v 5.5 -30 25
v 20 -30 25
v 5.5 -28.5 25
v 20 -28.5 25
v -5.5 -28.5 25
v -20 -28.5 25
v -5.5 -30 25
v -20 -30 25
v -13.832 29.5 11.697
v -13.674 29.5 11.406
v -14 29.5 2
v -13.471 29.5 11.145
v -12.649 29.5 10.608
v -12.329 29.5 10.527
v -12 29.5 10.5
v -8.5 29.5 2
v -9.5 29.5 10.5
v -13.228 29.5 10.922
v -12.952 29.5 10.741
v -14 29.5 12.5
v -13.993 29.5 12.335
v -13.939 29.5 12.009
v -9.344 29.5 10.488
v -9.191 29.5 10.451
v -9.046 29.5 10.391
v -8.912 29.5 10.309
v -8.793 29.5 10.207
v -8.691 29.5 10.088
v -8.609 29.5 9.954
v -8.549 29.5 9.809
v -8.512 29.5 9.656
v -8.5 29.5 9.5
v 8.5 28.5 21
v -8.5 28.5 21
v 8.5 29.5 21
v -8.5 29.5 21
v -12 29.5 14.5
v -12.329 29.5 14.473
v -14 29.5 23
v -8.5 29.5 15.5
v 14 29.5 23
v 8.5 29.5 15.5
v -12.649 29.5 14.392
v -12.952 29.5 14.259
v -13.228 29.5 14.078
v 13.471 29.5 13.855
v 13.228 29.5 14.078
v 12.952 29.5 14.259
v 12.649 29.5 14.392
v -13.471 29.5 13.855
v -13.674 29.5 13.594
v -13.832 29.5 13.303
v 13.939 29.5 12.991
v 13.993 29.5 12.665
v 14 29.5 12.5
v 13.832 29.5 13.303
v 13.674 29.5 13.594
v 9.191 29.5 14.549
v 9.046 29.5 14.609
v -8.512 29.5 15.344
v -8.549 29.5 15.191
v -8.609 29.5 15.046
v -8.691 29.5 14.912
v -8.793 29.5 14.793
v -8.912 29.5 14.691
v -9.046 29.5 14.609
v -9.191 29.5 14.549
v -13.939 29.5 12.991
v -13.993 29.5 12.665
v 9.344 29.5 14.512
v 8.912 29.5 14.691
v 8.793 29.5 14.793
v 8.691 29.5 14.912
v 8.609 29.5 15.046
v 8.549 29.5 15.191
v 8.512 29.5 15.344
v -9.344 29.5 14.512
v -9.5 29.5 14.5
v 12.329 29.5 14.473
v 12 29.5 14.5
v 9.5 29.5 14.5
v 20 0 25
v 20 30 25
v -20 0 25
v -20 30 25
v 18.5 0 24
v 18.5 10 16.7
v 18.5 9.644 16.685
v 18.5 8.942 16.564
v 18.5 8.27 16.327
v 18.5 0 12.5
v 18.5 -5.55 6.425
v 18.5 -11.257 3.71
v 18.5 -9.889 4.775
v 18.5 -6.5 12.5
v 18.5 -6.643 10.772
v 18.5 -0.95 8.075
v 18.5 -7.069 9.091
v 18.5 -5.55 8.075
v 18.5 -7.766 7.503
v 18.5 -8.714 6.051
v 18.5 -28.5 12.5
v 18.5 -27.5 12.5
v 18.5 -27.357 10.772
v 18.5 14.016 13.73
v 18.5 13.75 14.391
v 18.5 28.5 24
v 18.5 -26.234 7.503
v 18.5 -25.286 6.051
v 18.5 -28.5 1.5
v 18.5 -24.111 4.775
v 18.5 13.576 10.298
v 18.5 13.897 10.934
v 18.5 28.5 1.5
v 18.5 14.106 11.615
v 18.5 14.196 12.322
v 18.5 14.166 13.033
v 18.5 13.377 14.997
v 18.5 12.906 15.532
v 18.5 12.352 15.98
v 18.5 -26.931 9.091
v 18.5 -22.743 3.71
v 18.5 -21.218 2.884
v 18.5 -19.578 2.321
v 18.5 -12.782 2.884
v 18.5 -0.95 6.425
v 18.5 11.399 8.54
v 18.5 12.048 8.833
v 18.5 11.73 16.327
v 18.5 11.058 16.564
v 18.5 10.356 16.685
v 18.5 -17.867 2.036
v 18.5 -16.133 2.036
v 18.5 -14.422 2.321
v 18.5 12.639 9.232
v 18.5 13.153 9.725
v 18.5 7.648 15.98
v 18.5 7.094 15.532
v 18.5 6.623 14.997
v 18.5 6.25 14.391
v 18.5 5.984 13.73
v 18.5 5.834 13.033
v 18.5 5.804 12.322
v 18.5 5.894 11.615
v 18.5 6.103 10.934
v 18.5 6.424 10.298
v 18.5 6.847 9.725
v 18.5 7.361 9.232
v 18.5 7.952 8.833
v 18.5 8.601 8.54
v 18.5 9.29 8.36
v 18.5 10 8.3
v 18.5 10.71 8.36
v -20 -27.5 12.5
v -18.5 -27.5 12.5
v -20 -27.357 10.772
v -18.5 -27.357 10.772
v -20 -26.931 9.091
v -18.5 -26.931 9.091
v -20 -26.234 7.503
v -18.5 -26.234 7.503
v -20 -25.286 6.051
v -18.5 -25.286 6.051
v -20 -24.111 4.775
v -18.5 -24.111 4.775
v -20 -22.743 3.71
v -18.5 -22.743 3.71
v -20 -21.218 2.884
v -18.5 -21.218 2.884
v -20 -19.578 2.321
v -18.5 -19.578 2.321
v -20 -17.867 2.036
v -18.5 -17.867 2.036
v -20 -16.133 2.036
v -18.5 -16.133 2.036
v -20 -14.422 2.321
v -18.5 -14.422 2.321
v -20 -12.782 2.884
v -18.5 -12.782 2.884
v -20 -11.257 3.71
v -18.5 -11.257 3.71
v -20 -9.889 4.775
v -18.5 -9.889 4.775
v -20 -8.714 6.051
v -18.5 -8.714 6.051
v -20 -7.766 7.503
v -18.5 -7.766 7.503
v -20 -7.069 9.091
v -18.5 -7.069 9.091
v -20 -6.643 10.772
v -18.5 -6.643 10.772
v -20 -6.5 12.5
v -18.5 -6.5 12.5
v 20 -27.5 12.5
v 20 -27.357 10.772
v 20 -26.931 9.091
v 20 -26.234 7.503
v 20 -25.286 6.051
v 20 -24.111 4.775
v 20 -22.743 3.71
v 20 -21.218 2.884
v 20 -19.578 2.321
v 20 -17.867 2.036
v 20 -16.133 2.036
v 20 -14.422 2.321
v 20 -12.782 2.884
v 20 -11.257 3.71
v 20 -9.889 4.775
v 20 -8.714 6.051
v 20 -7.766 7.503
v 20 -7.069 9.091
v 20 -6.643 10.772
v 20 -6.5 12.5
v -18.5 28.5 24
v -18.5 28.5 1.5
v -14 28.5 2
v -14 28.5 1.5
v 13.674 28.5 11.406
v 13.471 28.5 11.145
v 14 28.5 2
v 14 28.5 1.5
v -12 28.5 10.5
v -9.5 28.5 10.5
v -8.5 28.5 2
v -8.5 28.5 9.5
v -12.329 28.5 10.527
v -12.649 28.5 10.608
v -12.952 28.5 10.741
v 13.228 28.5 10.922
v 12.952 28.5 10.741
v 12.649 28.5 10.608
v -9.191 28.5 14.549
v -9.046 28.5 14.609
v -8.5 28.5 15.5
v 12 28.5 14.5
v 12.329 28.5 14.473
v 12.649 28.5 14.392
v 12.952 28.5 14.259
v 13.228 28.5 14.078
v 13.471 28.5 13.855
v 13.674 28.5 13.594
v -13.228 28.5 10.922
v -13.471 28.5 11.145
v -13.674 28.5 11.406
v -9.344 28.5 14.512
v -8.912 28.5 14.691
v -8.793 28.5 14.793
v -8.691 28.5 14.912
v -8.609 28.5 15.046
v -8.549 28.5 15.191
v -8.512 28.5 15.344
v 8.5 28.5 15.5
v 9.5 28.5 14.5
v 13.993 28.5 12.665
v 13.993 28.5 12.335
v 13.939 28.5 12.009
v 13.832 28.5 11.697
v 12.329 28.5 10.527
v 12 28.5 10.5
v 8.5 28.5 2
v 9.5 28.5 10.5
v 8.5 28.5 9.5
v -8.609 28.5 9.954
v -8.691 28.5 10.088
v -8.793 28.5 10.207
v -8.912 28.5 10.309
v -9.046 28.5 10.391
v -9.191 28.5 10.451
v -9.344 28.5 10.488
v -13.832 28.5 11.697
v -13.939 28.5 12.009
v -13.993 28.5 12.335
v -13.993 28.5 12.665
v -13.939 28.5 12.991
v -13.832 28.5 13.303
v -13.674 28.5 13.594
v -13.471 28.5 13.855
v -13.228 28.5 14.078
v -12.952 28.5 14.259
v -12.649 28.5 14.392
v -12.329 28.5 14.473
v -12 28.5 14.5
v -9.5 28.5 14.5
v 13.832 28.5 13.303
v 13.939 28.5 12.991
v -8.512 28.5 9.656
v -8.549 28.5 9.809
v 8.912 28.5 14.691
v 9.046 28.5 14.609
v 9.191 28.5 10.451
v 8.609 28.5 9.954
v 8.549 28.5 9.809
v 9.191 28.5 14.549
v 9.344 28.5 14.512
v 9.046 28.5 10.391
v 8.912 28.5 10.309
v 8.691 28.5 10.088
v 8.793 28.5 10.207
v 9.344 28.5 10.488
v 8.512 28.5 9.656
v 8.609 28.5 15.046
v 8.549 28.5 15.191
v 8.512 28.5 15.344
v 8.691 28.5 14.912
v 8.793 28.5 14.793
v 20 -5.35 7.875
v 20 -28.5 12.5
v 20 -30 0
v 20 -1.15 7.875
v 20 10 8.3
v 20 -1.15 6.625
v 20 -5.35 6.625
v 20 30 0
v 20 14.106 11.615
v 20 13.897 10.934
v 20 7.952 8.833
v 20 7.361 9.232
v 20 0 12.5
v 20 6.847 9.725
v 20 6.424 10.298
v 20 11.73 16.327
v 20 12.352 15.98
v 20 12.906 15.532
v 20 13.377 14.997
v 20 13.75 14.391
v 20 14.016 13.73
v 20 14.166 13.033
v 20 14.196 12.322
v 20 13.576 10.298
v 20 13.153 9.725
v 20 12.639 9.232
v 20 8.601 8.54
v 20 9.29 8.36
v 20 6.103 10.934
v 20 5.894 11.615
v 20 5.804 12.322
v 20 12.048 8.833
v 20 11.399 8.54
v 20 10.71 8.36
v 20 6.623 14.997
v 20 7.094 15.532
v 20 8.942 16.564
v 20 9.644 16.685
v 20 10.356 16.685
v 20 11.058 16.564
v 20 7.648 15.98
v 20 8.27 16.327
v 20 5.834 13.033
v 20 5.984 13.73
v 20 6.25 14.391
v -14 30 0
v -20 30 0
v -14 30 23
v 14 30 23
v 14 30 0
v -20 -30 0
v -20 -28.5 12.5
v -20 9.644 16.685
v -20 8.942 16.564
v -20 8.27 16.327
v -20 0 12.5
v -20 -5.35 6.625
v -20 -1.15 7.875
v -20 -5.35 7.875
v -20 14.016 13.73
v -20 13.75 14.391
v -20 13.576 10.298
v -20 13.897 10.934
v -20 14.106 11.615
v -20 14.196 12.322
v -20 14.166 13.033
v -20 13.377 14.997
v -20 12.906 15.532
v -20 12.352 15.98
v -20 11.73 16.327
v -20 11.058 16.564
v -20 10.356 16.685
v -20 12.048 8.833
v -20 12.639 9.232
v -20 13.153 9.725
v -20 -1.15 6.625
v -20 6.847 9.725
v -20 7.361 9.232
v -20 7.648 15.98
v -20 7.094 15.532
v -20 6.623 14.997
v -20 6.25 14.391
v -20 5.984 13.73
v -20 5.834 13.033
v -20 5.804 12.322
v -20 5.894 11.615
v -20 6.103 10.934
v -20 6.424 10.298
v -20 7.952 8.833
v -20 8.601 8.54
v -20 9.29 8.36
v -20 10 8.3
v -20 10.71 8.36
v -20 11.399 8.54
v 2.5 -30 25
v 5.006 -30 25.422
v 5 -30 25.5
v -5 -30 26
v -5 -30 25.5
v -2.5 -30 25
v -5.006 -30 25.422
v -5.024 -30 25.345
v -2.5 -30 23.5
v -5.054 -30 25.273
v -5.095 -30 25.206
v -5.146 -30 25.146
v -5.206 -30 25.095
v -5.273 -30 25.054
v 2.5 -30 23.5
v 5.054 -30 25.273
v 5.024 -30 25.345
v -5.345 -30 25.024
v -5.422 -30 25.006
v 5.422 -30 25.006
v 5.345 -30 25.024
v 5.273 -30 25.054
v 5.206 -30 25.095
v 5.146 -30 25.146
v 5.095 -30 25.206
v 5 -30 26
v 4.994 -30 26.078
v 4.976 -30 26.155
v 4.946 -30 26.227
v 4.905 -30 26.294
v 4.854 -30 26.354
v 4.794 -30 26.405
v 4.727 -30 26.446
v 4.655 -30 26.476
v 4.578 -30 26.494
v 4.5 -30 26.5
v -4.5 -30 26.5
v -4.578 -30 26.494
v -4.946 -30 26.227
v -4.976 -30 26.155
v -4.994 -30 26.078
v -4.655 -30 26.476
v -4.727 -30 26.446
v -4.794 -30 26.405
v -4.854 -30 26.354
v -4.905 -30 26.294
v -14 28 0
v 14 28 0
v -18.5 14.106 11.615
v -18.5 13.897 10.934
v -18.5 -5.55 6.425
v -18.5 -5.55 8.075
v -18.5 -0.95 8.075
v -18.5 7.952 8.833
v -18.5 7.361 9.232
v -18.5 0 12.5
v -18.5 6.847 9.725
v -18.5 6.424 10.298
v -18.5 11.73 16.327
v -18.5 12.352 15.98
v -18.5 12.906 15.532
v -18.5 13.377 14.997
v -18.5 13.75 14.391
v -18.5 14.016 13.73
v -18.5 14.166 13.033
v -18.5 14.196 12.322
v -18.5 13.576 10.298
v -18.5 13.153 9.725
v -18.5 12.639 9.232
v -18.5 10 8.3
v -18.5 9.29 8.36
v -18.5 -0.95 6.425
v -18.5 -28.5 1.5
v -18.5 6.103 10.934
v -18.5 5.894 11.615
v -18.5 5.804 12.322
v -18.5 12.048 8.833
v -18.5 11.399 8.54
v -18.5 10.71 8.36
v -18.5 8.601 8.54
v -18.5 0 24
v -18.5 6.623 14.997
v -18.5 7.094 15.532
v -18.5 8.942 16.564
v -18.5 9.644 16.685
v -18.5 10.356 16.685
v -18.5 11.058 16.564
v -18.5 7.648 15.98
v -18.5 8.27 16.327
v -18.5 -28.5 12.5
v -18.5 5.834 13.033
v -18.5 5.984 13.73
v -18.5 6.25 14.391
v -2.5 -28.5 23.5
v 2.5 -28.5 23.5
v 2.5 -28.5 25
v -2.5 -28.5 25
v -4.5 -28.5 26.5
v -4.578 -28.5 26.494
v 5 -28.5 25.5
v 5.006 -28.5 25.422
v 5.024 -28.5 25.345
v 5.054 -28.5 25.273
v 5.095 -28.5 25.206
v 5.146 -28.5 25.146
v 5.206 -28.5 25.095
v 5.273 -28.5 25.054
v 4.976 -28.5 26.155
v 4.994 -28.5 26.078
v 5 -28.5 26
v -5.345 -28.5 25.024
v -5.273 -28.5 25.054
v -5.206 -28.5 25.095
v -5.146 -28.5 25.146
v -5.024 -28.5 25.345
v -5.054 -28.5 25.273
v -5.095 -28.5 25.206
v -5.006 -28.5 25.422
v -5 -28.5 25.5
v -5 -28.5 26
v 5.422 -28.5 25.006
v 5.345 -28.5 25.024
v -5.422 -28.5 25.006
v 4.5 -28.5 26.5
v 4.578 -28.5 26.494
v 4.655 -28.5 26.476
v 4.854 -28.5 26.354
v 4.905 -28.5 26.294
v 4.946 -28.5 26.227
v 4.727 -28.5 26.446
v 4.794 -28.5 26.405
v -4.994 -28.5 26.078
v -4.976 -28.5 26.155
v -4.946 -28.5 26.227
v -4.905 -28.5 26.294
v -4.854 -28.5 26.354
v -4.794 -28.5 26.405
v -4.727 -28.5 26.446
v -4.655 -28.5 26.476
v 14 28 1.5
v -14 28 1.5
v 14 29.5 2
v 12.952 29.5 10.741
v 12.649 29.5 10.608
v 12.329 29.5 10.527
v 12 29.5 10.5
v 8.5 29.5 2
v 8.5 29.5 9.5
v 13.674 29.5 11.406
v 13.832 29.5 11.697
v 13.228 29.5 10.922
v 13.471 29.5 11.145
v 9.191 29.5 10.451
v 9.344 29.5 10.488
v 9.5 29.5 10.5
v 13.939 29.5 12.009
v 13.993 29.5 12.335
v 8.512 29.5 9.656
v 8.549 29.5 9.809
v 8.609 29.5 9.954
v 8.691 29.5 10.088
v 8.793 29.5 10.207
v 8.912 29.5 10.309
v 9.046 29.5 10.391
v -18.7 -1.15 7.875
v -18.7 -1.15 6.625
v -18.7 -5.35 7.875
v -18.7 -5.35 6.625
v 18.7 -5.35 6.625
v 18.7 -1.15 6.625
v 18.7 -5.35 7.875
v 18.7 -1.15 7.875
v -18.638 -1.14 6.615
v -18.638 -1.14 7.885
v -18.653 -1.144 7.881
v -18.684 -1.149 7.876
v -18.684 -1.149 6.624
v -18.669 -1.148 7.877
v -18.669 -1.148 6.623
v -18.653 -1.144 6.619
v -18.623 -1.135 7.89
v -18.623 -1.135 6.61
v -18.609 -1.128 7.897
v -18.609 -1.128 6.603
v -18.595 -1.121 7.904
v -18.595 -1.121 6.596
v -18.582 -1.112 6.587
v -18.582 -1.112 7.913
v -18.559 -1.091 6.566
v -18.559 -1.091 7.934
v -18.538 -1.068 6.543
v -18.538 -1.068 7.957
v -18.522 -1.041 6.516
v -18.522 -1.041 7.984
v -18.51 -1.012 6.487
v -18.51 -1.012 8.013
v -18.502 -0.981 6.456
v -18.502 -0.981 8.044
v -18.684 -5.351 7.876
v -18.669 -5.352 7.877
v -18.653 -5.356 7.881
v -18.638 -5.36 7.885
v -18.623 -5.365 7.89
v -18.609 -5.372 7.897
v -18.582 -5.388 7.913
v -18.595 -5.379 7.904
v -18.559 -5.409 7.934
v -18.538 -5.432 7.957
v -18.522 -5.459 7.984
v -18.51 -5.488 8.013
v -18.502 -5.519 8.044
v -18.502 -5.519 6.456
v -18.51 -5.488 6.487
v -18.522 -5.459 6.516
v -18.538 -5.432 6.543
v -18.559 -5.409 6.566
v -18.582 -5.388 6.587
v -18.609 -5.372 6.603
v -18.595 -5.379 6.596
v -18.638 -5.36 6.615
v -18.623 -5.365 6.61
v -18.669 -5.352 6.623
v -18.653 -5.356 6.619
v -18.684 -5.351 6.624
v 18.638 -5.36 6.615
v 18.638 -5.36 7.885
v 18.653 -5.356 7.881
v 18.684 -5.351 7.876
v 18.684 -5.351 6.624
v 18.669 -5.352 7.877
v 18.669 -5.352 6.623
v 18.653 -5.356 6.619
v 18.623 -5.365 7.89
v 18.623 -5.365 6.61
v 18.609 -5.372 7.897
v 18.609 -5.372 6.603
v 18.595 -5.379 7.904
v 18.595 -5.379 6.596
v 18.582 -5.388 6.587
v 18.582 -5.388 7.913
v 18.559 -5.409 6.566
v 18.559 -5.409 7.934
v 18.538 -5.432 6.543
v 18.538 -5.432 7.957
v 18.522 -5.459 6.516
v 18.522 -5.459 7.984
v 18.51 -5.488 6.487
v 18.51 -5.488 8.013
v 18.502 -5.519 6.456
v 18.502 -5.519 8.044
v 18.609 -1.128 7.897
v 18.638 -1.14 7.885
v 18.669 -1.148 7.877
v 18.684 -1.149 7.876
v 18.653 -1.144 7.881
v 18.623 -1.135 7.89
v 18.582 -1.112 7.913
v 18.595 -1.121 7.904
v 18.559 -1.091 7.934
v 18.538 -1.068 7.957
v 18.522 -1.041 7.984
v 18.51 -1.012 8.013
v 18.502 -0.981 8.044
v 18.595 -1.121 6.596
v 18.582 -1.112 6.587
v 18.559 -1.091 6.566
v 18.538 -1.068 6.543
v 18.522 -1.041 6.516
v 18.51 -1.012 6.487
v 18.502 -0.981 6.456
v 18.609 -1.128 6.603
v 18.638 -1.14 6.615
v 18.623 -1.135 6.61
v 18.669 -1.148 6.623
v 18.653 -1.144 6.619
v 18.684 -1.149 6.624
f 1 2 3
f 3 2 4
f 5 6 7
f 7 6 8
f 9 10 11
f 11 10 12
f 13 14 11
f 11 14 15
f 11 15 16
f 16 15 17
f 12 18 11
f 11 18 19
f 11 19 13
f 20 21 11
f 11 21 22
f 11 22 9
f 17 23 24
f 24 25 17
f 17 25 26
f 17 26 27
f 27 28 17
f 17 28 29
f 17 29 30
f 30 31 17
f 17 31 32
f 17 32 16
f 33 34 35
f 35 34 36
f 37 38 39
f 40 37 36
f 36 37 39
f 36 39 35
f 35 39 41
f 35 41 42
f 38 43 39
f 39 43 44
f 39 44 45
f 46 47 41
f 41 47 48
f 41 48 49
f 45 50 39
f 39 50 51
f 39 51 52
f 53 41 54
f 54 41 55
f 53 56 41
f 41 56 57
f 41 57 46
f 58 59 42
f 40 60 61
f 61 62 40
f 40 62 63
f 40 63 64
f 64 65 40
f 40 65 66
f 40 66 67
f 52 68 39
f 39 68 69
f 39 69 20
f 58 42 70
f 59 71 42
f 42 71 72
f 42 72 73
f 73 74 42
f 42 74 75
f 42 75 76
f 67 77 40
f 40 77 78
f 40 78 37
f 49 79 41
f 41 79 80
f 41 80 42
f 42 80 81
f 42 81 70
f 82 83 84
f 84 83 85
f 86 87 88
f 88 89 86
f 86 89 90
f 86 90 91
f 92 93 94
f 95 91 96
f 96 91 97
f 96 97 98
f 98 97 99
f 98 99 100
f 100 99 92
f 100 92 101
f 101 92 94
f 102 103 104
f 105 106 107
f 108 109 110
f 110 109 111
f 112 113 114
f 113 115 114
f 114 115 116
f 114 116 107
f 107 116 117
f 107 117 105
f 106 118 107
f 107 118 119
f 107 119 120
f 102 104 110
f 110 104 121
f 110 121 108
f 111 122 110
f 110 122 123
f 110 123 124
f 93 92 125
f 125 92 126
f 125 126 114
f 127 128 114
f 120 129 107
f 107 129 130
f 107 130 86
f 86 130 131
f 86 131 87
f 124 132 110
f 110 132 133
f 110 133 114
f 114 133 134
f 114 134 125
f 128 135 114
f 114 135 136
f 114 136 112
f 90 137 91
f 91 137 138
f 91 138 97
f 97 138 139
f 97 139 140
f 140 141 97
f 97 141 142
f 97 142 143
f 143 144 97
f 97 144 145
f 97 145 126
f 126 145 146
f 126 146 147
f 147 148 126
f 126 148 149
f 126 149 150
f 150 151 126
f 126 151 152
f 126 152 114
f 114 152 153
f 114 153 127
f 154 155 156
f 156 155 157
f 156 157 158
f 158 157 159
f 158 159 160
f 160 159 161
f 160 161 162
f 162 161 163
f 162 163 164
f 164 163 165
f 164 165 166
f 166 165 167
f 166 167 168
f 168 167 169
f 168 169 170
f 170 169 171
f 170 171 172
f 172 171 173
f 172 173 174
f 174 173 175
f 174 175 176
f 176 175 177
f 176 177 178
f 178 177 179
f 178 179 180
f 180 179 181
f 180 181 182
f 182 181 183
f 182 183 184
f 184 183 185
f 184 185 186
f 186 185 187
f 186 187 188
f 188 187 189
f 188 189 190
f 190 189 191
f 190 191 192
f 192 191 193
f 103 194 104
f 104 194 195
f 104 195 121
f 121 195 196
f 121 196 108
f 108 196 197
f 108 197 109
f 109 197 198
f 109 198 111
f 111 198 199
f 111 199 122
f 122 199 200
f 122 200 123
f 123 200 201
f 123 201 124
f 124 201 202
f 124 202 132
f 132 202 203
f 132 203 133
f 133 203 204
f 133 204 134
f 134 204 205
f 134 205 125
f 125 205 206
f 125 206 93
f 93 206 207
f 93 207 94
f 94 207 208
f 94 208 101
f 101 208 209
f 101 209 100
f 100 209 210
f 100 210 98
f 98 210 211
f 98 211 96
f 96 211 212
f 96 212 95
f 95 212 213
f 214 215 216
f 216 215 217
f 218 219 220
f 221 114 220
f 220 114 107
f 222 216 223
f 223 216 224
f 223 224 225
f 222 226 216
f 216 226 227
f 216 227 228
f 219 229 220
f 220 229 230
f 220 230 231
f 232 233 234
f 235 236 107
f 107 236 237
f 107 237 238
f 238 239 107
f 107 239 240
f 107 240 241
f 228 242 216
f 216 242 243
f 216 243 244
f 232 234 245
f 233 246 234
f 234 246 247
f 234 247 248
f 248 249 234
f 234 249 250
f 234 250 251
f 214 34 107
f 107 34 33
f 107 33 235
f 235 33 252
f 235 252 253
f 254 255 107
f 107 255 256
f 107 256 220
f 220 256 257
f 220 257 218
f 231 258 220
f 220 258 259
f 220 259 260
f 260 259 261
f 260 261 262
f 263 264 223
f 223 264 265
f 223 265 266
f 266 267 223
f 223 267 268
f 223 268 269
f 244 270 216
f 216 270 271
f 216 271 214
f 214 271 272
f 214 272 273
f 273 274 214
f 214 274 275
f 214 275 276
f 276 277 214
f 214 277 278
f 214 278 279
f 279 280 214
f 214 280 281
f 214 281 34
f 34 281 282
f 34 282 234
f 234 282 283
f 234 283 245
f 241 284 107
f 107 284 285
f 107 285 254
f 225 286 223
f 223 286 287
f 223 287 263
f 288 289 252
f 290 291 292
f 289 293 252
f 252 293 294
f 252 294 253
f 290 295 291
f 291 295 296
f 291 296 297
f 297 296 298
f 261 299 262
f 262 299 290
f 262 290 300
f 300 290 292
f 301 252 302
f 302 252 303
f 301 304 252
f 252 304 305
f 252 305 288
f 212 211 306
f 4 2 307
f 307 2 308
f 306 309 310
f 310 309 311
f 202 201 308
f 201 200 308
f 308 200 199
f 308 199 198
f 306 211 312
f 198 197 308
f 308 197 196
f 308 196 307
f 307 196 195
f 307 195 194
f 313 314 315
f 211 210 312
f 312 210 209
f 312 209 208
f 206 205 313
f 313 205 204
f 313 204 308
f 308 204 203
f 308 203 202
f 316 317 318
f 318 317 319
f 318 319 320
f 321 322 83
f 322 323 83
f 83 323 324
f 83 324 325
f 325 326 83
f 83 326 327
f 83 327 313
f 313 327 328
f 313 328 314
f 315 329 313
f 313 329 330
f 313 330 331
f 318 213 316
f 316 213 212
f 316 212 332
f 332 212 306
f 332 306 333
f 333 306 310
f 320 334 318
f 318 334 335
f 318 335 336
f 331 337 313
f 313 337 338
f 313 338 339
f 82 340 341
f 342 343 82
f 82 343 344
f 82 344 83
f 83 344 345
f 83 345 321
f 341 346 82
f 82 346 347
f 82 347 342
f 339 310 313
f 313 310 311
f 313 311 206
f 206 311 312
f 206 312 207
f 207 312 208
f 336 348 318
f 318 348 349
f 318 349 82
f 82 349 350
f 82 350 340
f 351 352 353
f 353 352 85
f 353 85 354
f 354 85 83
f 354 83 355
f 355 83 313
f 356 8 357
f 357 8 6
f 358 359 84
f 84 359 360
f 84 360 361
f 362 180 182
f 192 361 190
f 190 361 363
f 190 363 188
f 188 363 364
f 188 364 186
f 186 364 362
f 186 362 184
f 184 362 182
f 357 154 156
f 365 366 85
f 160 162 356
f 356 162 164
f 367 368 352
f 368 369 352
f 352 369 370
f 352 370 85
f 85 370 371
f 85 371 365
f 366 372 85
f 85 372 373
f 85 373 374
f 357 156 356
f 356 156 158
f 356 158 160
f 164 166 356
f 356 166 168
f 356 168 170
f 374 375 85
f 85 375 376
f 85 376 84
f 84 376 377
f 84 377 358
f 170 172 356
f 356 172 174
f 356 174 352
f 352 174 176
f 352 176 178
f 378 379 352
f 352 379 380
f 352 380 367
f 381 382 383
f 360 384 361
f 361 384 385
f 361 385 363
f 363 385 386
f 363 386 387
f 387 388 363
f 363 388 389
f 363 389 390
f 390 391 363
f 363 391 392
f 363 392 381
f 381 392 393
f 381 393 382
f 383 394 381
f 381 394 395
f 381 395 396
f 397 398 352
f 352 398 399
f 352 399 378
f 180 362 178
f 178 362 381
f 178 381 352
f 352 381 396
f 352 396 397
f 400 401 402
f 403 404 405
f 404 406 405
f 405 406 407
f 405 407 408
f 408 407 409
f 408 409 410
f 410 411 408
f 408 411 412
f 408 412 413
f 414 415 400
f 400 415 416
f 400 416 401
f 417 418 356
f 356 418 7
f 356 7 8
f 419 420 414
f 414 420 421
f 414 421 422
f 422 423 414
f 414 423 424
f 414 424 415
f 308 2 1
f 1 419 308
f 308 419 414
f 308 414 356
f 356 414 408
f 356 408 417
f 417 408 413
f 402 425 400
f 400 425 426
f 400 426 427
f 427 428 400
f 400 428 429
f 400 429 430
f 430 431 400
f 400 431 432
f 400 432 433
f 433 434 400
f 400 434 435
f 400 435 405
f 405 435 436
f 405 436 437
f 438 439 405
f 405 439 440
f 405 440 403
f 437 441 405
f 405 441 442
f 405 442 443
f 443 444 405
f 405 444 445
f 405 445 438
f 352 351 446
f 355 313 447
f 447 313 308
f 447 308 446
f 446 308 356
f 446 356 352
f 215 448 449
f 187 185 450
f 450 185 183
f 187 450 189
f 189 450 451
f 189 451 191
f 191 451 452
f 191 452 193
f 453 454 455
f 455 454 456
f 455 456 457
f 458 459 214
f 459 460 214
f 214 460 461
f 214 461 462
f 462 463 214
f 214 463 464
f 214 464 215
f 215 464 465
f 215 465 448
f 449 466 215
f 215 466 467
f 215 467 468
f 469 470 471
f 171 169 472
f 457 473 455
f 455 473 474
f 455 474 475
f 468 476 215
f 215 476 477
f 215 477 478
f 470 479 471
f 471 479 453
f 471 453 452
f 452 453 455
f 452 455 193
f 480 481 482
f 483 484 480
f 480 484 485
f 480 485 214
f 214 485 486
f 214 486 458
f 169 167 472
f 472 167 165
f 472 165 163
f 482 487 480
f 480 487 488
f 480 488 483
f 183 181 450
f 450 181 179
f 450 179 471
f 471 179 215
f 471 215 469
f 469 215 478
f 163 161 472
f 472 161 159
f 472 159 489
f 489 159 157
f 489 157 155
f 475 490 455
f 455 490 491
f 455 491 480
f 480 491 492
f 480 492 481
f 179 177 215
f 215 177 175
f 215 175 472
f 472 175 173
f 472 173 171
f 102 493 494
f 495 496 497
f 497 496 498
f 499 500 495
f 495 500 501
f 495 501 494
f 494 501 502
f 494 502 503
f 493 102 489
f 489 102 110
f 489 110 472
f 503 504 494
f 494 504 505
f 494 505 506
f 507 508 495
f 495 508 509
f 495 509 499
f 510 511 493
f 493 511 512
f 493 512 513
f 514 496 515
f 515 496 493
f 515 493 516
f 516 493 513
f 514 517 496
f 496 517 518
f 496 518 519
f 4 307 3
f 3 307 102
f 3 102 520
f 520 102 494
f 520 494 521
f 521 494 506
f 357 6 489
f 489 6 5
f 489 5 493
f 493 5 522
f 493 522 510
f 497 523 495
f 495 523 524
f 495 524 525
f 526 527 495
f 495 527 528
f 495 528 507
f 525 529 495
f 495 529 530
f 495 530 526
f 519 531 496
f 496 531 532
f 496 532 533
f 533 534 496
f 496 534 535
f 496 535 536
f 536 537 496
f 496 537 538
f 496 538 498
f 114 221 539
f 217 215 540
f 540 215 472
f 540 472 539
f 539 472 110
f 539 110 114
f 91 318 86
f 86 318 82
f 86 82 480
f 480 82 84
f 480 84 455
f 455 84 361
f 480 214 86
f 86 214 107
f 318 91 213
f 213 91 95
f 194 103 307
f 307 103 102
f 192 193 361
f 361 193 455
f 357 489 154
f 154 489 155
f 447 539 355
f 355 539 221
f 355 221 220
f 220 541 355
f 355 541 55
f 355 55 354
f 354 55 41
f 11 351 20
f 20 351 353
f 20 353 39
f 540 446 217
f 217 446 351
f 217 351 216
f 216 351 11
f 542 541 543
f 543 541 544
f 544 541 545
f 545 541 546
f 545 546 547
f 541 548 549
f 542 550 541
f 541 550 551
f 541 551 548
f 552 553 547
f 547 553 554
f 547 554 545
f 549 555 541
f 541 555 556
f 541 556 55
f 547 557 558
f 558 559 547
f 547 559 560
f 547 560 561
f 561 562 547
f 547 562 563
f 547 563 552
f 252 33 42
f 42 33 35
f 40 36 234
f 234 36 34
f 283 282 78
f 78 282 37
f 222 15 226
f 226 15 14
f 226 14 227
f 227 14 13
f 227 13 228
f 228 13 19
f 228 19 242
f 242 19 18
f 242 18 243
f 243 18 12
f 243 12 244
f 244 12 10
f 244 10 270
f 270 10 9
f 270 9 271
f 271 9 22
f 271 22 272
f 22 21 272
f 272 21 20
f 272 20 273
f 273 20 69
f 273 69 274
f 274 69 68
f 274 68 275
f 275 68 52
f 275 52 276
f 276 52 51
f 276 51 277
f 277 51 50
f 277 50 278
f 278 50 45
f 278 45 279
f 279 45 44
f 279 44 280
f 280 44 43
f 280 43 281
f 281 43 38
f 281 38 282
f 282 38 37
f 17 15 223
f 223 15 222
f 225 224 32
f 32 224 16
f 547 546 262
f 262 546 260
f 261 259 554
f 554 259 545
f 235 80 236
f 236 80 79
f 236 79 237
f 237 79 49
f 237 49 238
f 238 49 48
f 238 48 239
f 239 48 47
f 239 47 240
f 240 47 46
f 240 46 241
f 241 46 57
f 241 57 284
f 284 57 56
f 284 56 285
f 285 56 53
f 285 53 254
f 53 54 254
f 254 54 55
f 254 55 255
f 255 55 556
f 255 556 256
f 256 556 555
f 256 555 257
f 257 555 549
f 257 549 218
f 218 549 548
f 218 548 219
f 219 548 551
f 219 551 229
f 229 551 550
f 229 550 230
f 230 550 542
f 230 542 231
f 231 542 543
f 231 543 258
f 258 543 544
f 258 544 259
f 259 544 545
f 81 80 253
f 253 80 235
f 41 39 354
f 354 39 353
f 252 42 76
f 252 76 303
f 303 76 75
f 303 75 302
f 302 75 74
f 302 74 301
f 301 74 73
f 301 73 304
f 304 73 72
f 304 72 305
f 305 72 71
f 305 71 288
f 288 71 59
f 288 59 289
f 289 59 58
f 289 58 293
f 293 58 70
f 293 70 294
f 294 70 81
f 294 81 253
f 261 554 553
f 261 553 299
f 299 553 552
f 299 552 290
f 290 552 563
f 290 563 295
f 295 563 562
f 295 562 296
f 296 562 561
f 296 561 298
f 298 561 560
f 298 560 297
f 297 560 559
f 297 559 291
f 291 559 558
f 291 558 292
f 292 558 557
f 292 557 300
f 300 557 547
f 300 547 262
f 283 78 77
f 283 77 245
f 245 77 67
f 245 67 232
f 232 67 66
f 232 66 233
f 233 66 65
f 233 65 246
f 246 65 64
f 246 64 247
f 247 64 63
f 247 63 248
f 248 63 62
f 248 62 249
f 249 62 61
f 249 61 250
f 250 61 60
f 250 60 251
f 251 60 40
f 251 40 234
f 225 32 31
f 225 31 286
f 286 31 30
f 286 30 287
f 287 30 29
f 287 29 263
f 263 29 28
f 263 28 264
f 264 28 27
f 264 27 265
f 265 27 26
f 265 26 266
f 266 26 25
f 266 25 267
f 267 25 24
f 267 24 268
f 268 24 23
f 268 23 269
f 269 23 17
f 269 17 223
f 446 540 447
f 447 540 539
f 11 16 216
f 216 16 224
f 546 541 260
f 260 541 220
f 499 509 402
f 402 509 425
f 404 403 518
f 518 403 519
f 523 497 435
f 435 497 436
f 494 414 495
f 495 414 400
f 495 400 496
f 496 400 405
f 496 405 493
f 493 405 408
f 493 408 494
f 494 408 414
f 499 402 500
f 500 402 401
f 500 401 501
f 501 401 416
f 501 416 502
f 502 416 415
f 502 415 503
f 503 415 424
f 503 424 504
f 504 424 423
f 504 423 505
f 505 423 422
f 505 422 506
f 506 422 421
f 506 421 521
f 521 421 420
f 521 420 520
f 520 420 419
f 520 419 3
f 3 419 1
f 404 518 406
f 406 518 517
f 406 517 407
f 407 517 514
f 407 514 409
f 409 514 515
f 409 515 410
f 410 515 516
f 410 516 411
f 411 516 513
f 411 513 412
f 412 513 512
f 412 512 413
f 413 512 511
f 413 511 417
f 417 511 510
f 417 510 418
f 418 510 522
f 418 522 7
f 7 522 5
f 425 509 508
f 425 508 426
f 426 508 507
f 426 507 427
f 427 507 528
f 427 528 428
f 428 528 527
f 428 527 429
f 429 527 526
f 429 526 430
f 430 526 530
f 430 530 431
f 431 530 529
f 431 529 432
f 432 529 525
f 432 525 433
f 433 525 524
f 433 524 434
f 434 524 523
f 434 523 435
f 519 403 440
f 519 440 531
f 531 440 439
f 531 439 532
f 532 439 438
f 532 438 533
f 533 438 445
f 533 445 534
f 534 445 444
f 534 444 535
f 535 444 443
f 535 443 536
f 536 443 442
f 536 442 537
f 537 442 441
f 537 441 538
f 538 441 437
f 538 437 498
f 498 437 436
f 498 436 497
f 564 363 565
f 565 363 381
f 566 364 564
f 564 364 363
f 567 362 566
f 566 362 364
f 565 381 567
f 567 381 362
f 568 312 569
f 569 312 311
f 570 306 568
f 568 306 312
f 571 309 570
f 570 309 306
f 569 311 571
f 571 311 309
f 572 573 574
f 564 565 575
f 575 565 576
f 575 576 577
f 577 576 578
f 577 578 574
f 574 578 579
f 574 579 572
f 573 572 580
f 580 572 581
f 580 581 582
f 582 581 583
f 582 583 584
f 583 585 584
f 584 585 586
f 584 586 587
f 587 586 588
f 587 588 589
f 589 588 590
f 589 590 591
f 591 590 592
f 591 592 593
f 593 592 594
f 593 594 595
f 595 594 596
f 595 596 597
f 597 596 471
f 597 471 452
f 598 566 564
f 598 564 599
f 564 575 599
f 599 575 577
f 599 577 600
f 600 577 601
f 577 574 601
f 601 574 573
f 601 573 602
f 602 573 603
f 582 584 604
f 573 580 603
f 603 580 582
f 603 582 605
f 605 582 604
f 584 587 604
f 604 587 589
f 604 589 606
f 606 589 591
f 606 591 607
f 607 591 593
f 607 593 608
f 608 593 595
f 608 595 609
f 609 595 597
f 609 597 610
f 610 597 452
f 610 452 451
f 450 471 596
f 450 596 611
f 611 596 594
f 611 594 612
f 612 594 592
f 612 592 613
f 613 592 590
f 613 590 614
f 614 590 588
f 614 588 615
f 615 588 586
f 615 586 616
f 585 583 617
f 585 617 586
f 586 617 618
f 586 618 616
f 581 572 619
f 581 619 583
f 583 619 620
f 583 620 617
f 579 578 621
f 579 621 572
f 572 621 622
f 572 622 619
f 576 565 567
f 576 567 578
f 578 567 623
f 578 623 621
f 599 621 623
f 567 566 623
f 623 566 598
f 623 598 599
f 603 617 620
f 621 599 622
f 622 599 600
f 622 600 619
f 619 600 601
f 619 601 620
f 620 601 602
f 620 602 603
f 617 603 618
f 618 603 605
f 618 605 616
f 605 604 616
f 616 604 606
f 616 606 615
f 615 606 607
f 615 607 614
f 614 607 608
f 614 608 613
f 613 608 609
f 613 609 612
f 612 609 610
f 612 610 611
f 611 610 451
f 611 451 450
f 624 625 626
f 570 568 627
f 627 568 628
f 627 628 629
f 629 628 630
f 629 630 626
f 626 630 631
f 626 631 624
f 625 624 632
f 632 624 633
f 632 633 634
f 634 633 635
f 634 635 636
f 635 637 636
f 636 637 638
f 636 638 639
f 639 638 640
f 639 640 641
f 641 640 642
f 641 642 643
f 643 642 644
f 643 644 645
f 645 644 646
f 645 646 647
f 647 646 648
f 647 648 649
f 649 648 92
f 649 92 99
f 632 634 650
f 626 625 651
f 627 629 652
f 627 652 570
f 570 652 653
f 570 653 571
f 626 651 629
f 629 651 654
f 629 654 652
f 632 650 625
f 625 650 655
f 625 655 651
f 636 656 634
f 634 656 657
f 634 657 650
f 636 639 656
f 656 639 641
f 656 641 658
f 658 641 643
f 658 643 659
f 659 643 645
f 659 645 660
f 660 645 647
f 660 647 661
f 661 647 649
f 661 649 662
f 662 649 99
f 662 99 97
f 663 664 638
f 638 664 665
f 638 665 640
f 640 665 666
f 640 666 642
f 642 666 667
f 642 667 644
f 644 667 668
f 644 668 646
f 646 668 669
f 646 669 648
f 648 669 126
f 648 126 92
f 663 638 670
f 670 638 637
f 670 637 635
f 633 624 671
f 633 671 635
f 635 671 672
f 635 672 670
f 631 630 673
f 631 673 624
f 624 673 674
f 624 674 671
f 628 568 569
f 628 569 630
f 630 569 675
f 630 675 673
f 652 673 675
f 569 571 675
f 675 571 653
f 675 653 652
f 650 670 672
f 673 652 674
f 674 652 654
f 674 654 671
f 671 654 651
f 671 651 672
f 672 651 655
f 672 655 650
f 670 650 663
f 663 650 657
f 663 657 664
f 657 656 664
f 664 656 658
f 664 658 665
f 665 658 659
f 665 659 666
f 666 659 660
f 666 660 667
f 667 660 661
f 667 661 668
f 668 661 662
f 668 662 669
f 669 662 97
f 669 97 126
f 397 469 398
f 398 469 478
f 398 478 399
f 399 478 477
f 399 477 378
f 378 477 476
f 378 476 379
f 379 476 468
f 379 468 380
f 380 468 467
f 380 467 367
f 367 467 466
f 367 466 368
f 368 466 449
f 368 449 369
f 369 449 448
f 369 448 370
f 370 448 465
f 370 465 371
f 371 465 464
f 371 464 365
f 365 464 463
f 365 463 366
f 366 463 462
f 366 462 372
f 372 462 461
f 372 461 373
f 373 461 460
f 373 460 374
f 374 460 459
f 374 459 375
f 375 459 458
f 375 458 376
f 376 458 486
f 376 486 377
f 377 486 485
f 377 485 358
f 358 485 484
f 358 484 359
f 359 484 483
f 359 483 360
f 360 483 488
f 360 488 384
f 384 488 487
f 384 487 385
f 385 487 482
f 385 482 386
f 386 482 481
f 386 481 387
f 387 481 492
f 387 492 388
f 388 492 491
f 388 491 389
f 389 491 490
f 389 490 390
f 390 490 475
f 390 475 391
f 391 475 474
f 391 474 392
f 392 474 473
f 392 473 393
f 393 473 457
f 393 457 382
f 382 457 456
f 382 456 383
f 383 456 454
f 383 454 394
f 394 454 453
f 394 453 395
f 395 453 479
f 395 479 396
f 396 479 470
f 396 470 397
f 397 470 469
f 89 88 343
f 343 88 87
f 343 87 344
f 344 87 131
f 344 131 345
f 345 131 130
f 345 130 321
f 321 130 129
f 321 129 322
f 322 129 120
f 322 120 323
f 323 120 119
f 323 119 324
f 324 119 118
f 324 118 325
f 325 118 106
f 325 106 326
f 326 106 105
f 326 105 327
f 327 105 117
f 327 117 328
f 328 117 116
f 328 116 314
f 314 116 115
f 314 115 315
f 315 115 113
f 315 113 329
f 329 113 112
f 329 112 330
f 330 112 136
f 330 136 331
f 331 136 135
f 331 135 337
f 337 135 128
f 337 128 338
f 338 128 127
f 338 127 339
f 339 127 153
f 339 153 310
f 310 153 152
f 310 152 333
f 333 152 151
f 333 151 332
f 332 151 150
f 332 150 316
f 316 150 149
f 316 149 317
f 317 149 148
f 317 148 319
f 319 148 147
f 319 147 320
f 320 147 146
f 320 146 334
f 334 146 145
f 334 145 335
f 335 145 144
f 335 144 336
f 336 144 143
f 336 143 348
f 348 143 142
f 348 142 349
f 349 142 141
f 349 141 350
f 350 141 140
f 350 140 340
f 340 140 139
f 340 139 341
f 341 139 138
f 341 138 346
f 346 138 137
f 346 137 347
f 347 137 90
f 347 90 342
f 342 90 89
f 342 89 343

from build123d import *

# Parameters (mm, degrees)
SKETCH_1_W           = 40
SKETCH_1_H           = 60
EXTRUDE_1_DEPTH      = 25
SHELL_1_T            = -1.5
SKETCH_2_R           = 10.5
CUT_EXTRUDE_1_DEPTH  = 75
SKETCH_3_W           = 40
SKETCH_3_H           = 30
EXTRUDE_2_DEPTH      = 1
SKETCH_4_W           = 40
SKETCH_4_H           = 28.5
CUT_EXTRUDE_2_DEPTH  = 12.5
SKETCH_5_R           = 4.2
CUT_EXTRUDE_3_DEPTH  = 1.5
SKETCH_6_W           = 28
SKETCH_6_H           = 26
CUT_EXTRUDE_4_DEPTH  = 0.5
CUT_EXTRUDE_7_DEPTH  = 3.5
SKETCH_9_W           = 28
SKETCH_9_H           = 2
CUT_EXTRUDE_8_DEPTH  = 0.5
FILLET_1_R           = 1
CUT_EXTRUDE_9_DEPTH  = 1.5
SKETCH_18_W          = 10
SKETCH_18_H          = 1.5
EXTRUDE_6_DEPTH      = 1.5
SKETCH_22_W          = 5
SKETCH_22_H          = 1.5
CUT_EXTRUDE_13_DEPTH = 2
FILLET_4_R           = 0.5
SKETCH_26_W          = 1.25
SKETCH_26_H          = 4.2
CUT_EXTRUDE_15_DEPTH = 41
FILLET_5_R           = 0.2
SKETCH_17_R          = 4.2
CUT_EXTRUDE_16_DEPTH = 41
EXTRUDE_START        = 1.5
EXTRUDE_9_DEPTH      = 1.5


with BuildPart() as part:
    # 草图1 → 凸台-拉伸1 (new body)
    with BuildSketch(Plane.XY):
        Rectangle(SKETCH_1_W, SKETCH_1_H)
    extrude(amount=EXTRUDE_1_DEPTH)

    # 抽壳1
    shell_1_openings = [part.faces().sort_by_distance(p)[0] for p in [
        (0, 0, 25),
    ]]
    offset(amount=SHELL_1_T, openings=shell_1_openings, kind=Kind.INTERSECTION)

    # 草图2 → 切除-拉伸1 (cut)
    with BuildSketch(Plane(origin=(20, 0, 0), x_dir=(0, 0, -1), z_dir=(1, 0, 0))):
        with Locations((-12.5, -17)):
            Circle(SKETCH_2_R)
    extrude(amount=-CUT_EXTRUDE_1_DEPTH, mode=Mode.SUBTRACT)

    # 草图3 → 凸台-拉伸2 (add)
    with BuildSketch(Plane.XY.offset(25)):
        with Locations((0, 15)):
            Rectangle(SKETCH_3_W, SKETCH_3_H)
    extrude(amount=-EXTRUDE_2_DEPTH)

    # 草图4 → 切除-拉伸2 (cut)
    with BuildSketch(Plane.XY.offset(25)):
        with Locations((0, -14.25)):
            Rectangle(SKETCH_4_W, SKETCH_4_H)
    extrude(amount=-CUT_EXTRUDE_2_DEPTH, mode=Mode.SUBTRACT)

    # 草图5 → 切除-拉伸3 (cut)
    with BuildSketch(Plane(origin=(0, 30, 0), x_dir=(1, 0, 0), z_dir=(0, 1, 0))):
        with Locations((-20, -12.5)):
            Circle(SKETCH_5_R)
        with Locations((20, -12.5)):
            Circle(SKETCH_5_R)
    extrude(amount=-CUT_EXTRUDE_3_DEPTH, mode=Mode.SUBTRACT)

    # 草图6 → 切除-拉伸4 (cut)
    with BuildSketch(Plane(origin=(0, 30, 0), x_dir=(1, 0, 0), z_dir=(0, 1, 0))):
        with Locations((0, -8)):
            Rectangle(SKETCH_6_W, SKETCH_6_H)
    extrude(amount=-CUT_EXTRUDE_4_DEPTH, mode=Mode.SUBTRACT)

    # 草图8 → 切除-拉伸7 (cut)
    with BuildSketch(Plane(origin=(0, 29.5, 0), x_dir=(1, 0, 0), z_dir=(0, 1, 0))):
        with BuildLine():
            Line((-8.5, -4), (8.5, -4))
            Line((8.5, -4), (8.5, -10.5))
            Line((8.5, -10.5), (12, -10.5))
            ThreePointArc((12, -10.5), (14, -12.5), (12, -14.5))
            Line((12, -14.5), (8.5, -14.5))
            Line((8.5, -14.5), (8.5, -21))
            Line((8.5, -21), (-8.5, -21))
            Line((-8.5, -21), (-8.5, -14.5))
            Line((-8.5, -14.5), (-12, -14.5))
            ThreePointArc((-12, -14.5), (-14, -12.5), (-12, -10.5))
            Line((-12, -10.5), (-8.5, -10.5))
            Line((-8.5, -10.5), (-8.5, -4))
        make_face()
    extrude(amount=-CUT_EXTRUDE_7_DEPTH, mode=Mode.SUBTRACT)

    # 草图9 → 切除-拉伸8 (cut)
    with BuildSketch(Plane(origin=(0, 30, 0), x_dir=(1, 0, 0), z_dir=(0, 1, 0))):
        with Locations((0, -22)):
            Rectangle(SKETCH_9_W, SKETCH_9_H)
    extrude(amount=-CUT_EXTRUDE_8_DEPTH, mode=Mode.SUBTRACT)

    # 圆角1
    fillet_1_edges = [part.edges().sort_by_distance(p)[0] for p in [
        (8.5, 29, 14.5),
        (-8.5, 29, 14.5),
        (-8.5, 29, 10.5),
        (8.5, 29, 10.5),
    ]]
    fillet(fillet_1_edges, radius=FILLET_1_R)

    # 草图10 → 切除-拉伸9 (cut)
    with BuildSketch(Plane(origin=(0, 29.5, 0), x_dir=(1, 0, 0), z_dir=(0, 1, 0))):
        Polygon((8.5, -4), (8.5, -2), (14, -2), (14, 0), (8.5, 0), (-8.5, 0), (-14, 0), (-14, -2), (-8.5, -2), (-8.5, -4), align=None)
    extrude(amount=-CUT_EXTRUDE_9_DEPTH, mode=Mode.SUBTRACT)

    # 草图18 → 凸台-拉伸6 (add)
    with BuildSketch(Plane.XY.offset(25)):
        with Locations((0, -29.25)):
            Rectangle(SKETCH_18_W, SKETCH_18_H)
    extrude(amount=EXTRUDE_6_DEPTH)

    # 草图22 → 切除-拉伸13 (cut)
    with BuildSketch(Plane(origin=(0, -28.5, 0), x_dir=(1, 0, 0), z_dir=(0, 1, 0))):
        with Locations((0, -24.25)):
            Rectangle(SKETCH_22_W, SKETCH_22_H)
    extrude(amount=-CUT_EXTRUDE_13_DEPTH, mode=Mode.SUBTRACT)

    # 圆角4
    fillet_4_edges = [part.edges().sort_by_distance(p)[0] for p in [
        (5, -29.25, 25),
        (-5, -29.25, 25),
        (5, -29.25, 26.5),
        (-5, -29.25, 26.5),
    ]]
    fillet(fillet_4_edges, radius=FILLET_4_R)

    # 草图26 → 切除-拉伸15 (cut)
    with BuildSketch(Plane(origin=(20, 0, 0), x_dir=(0, 0, -1), z_dir=(1, 0, 0))):
        with Locations((-7.25, -3.25)):
            Rectangle(SKETCH_26_W, SKETCH_26_H)
    extrude(amount=-CUT_EXTRUDE_15_DEPTH, mode=Mode.SUBTRACT)

    # 圆角5
    fillet_5_edges = [part.edges().sort_by_distance(p)[0] for p in [
        (-18.5, -1.15, 7.25),
        (-18.5, -3.25, 7.875),
        (-18.5, -5.35, 7.25),
        (-18.5, -3.25, 6.625),
        (18.5, -3.25, 6.625),
        (18.5, -5.35, 7.25),
        (18.5, -3.25, 7.875),
        (18.5, -1.15, 7.25),
    ]]
    fillet(fillet_5_edges, radius=FILLET_5_R)

    # 草图17 → 切除-拉伸16 (cut)
    with BuildSketch(Plane(origin=(20, 0, 0), x_dir=(0, 0, -1), z_dir=(1, 0, 0))):
        with Locations((-12.5, 10)):
            Circle(SKETCH_17_R)
    extrude(amount=-CUT_EXTRUDE_16_DEPTH, mode=Mode.SUBTRACT)

    # 草图27 → 凸台-拉伸9 (add)
    with BuildSketch(Plane(origin=(0, 28.5, 0), x_dir=(1, 0, 0), z_dir=(0, 1, 0)).offset(EXTRUDE_START)):
        with BuildLine():
            Line((-20, -8.3), (-20, -16.7))
            ThreePointArc((-20, -16.7), (-15.8, -12.5), (-20, -8.3))
        make_face()
        with BuildLine():
            Line((20, -8.3), (20, -16.7))
            ThreePointArc((20, -16.7), (15.8, -12.5), (20, -8.3))
        make_face()
    extrude(amount=-EXTRUDE_9_DEPTH)


solid = part.part
